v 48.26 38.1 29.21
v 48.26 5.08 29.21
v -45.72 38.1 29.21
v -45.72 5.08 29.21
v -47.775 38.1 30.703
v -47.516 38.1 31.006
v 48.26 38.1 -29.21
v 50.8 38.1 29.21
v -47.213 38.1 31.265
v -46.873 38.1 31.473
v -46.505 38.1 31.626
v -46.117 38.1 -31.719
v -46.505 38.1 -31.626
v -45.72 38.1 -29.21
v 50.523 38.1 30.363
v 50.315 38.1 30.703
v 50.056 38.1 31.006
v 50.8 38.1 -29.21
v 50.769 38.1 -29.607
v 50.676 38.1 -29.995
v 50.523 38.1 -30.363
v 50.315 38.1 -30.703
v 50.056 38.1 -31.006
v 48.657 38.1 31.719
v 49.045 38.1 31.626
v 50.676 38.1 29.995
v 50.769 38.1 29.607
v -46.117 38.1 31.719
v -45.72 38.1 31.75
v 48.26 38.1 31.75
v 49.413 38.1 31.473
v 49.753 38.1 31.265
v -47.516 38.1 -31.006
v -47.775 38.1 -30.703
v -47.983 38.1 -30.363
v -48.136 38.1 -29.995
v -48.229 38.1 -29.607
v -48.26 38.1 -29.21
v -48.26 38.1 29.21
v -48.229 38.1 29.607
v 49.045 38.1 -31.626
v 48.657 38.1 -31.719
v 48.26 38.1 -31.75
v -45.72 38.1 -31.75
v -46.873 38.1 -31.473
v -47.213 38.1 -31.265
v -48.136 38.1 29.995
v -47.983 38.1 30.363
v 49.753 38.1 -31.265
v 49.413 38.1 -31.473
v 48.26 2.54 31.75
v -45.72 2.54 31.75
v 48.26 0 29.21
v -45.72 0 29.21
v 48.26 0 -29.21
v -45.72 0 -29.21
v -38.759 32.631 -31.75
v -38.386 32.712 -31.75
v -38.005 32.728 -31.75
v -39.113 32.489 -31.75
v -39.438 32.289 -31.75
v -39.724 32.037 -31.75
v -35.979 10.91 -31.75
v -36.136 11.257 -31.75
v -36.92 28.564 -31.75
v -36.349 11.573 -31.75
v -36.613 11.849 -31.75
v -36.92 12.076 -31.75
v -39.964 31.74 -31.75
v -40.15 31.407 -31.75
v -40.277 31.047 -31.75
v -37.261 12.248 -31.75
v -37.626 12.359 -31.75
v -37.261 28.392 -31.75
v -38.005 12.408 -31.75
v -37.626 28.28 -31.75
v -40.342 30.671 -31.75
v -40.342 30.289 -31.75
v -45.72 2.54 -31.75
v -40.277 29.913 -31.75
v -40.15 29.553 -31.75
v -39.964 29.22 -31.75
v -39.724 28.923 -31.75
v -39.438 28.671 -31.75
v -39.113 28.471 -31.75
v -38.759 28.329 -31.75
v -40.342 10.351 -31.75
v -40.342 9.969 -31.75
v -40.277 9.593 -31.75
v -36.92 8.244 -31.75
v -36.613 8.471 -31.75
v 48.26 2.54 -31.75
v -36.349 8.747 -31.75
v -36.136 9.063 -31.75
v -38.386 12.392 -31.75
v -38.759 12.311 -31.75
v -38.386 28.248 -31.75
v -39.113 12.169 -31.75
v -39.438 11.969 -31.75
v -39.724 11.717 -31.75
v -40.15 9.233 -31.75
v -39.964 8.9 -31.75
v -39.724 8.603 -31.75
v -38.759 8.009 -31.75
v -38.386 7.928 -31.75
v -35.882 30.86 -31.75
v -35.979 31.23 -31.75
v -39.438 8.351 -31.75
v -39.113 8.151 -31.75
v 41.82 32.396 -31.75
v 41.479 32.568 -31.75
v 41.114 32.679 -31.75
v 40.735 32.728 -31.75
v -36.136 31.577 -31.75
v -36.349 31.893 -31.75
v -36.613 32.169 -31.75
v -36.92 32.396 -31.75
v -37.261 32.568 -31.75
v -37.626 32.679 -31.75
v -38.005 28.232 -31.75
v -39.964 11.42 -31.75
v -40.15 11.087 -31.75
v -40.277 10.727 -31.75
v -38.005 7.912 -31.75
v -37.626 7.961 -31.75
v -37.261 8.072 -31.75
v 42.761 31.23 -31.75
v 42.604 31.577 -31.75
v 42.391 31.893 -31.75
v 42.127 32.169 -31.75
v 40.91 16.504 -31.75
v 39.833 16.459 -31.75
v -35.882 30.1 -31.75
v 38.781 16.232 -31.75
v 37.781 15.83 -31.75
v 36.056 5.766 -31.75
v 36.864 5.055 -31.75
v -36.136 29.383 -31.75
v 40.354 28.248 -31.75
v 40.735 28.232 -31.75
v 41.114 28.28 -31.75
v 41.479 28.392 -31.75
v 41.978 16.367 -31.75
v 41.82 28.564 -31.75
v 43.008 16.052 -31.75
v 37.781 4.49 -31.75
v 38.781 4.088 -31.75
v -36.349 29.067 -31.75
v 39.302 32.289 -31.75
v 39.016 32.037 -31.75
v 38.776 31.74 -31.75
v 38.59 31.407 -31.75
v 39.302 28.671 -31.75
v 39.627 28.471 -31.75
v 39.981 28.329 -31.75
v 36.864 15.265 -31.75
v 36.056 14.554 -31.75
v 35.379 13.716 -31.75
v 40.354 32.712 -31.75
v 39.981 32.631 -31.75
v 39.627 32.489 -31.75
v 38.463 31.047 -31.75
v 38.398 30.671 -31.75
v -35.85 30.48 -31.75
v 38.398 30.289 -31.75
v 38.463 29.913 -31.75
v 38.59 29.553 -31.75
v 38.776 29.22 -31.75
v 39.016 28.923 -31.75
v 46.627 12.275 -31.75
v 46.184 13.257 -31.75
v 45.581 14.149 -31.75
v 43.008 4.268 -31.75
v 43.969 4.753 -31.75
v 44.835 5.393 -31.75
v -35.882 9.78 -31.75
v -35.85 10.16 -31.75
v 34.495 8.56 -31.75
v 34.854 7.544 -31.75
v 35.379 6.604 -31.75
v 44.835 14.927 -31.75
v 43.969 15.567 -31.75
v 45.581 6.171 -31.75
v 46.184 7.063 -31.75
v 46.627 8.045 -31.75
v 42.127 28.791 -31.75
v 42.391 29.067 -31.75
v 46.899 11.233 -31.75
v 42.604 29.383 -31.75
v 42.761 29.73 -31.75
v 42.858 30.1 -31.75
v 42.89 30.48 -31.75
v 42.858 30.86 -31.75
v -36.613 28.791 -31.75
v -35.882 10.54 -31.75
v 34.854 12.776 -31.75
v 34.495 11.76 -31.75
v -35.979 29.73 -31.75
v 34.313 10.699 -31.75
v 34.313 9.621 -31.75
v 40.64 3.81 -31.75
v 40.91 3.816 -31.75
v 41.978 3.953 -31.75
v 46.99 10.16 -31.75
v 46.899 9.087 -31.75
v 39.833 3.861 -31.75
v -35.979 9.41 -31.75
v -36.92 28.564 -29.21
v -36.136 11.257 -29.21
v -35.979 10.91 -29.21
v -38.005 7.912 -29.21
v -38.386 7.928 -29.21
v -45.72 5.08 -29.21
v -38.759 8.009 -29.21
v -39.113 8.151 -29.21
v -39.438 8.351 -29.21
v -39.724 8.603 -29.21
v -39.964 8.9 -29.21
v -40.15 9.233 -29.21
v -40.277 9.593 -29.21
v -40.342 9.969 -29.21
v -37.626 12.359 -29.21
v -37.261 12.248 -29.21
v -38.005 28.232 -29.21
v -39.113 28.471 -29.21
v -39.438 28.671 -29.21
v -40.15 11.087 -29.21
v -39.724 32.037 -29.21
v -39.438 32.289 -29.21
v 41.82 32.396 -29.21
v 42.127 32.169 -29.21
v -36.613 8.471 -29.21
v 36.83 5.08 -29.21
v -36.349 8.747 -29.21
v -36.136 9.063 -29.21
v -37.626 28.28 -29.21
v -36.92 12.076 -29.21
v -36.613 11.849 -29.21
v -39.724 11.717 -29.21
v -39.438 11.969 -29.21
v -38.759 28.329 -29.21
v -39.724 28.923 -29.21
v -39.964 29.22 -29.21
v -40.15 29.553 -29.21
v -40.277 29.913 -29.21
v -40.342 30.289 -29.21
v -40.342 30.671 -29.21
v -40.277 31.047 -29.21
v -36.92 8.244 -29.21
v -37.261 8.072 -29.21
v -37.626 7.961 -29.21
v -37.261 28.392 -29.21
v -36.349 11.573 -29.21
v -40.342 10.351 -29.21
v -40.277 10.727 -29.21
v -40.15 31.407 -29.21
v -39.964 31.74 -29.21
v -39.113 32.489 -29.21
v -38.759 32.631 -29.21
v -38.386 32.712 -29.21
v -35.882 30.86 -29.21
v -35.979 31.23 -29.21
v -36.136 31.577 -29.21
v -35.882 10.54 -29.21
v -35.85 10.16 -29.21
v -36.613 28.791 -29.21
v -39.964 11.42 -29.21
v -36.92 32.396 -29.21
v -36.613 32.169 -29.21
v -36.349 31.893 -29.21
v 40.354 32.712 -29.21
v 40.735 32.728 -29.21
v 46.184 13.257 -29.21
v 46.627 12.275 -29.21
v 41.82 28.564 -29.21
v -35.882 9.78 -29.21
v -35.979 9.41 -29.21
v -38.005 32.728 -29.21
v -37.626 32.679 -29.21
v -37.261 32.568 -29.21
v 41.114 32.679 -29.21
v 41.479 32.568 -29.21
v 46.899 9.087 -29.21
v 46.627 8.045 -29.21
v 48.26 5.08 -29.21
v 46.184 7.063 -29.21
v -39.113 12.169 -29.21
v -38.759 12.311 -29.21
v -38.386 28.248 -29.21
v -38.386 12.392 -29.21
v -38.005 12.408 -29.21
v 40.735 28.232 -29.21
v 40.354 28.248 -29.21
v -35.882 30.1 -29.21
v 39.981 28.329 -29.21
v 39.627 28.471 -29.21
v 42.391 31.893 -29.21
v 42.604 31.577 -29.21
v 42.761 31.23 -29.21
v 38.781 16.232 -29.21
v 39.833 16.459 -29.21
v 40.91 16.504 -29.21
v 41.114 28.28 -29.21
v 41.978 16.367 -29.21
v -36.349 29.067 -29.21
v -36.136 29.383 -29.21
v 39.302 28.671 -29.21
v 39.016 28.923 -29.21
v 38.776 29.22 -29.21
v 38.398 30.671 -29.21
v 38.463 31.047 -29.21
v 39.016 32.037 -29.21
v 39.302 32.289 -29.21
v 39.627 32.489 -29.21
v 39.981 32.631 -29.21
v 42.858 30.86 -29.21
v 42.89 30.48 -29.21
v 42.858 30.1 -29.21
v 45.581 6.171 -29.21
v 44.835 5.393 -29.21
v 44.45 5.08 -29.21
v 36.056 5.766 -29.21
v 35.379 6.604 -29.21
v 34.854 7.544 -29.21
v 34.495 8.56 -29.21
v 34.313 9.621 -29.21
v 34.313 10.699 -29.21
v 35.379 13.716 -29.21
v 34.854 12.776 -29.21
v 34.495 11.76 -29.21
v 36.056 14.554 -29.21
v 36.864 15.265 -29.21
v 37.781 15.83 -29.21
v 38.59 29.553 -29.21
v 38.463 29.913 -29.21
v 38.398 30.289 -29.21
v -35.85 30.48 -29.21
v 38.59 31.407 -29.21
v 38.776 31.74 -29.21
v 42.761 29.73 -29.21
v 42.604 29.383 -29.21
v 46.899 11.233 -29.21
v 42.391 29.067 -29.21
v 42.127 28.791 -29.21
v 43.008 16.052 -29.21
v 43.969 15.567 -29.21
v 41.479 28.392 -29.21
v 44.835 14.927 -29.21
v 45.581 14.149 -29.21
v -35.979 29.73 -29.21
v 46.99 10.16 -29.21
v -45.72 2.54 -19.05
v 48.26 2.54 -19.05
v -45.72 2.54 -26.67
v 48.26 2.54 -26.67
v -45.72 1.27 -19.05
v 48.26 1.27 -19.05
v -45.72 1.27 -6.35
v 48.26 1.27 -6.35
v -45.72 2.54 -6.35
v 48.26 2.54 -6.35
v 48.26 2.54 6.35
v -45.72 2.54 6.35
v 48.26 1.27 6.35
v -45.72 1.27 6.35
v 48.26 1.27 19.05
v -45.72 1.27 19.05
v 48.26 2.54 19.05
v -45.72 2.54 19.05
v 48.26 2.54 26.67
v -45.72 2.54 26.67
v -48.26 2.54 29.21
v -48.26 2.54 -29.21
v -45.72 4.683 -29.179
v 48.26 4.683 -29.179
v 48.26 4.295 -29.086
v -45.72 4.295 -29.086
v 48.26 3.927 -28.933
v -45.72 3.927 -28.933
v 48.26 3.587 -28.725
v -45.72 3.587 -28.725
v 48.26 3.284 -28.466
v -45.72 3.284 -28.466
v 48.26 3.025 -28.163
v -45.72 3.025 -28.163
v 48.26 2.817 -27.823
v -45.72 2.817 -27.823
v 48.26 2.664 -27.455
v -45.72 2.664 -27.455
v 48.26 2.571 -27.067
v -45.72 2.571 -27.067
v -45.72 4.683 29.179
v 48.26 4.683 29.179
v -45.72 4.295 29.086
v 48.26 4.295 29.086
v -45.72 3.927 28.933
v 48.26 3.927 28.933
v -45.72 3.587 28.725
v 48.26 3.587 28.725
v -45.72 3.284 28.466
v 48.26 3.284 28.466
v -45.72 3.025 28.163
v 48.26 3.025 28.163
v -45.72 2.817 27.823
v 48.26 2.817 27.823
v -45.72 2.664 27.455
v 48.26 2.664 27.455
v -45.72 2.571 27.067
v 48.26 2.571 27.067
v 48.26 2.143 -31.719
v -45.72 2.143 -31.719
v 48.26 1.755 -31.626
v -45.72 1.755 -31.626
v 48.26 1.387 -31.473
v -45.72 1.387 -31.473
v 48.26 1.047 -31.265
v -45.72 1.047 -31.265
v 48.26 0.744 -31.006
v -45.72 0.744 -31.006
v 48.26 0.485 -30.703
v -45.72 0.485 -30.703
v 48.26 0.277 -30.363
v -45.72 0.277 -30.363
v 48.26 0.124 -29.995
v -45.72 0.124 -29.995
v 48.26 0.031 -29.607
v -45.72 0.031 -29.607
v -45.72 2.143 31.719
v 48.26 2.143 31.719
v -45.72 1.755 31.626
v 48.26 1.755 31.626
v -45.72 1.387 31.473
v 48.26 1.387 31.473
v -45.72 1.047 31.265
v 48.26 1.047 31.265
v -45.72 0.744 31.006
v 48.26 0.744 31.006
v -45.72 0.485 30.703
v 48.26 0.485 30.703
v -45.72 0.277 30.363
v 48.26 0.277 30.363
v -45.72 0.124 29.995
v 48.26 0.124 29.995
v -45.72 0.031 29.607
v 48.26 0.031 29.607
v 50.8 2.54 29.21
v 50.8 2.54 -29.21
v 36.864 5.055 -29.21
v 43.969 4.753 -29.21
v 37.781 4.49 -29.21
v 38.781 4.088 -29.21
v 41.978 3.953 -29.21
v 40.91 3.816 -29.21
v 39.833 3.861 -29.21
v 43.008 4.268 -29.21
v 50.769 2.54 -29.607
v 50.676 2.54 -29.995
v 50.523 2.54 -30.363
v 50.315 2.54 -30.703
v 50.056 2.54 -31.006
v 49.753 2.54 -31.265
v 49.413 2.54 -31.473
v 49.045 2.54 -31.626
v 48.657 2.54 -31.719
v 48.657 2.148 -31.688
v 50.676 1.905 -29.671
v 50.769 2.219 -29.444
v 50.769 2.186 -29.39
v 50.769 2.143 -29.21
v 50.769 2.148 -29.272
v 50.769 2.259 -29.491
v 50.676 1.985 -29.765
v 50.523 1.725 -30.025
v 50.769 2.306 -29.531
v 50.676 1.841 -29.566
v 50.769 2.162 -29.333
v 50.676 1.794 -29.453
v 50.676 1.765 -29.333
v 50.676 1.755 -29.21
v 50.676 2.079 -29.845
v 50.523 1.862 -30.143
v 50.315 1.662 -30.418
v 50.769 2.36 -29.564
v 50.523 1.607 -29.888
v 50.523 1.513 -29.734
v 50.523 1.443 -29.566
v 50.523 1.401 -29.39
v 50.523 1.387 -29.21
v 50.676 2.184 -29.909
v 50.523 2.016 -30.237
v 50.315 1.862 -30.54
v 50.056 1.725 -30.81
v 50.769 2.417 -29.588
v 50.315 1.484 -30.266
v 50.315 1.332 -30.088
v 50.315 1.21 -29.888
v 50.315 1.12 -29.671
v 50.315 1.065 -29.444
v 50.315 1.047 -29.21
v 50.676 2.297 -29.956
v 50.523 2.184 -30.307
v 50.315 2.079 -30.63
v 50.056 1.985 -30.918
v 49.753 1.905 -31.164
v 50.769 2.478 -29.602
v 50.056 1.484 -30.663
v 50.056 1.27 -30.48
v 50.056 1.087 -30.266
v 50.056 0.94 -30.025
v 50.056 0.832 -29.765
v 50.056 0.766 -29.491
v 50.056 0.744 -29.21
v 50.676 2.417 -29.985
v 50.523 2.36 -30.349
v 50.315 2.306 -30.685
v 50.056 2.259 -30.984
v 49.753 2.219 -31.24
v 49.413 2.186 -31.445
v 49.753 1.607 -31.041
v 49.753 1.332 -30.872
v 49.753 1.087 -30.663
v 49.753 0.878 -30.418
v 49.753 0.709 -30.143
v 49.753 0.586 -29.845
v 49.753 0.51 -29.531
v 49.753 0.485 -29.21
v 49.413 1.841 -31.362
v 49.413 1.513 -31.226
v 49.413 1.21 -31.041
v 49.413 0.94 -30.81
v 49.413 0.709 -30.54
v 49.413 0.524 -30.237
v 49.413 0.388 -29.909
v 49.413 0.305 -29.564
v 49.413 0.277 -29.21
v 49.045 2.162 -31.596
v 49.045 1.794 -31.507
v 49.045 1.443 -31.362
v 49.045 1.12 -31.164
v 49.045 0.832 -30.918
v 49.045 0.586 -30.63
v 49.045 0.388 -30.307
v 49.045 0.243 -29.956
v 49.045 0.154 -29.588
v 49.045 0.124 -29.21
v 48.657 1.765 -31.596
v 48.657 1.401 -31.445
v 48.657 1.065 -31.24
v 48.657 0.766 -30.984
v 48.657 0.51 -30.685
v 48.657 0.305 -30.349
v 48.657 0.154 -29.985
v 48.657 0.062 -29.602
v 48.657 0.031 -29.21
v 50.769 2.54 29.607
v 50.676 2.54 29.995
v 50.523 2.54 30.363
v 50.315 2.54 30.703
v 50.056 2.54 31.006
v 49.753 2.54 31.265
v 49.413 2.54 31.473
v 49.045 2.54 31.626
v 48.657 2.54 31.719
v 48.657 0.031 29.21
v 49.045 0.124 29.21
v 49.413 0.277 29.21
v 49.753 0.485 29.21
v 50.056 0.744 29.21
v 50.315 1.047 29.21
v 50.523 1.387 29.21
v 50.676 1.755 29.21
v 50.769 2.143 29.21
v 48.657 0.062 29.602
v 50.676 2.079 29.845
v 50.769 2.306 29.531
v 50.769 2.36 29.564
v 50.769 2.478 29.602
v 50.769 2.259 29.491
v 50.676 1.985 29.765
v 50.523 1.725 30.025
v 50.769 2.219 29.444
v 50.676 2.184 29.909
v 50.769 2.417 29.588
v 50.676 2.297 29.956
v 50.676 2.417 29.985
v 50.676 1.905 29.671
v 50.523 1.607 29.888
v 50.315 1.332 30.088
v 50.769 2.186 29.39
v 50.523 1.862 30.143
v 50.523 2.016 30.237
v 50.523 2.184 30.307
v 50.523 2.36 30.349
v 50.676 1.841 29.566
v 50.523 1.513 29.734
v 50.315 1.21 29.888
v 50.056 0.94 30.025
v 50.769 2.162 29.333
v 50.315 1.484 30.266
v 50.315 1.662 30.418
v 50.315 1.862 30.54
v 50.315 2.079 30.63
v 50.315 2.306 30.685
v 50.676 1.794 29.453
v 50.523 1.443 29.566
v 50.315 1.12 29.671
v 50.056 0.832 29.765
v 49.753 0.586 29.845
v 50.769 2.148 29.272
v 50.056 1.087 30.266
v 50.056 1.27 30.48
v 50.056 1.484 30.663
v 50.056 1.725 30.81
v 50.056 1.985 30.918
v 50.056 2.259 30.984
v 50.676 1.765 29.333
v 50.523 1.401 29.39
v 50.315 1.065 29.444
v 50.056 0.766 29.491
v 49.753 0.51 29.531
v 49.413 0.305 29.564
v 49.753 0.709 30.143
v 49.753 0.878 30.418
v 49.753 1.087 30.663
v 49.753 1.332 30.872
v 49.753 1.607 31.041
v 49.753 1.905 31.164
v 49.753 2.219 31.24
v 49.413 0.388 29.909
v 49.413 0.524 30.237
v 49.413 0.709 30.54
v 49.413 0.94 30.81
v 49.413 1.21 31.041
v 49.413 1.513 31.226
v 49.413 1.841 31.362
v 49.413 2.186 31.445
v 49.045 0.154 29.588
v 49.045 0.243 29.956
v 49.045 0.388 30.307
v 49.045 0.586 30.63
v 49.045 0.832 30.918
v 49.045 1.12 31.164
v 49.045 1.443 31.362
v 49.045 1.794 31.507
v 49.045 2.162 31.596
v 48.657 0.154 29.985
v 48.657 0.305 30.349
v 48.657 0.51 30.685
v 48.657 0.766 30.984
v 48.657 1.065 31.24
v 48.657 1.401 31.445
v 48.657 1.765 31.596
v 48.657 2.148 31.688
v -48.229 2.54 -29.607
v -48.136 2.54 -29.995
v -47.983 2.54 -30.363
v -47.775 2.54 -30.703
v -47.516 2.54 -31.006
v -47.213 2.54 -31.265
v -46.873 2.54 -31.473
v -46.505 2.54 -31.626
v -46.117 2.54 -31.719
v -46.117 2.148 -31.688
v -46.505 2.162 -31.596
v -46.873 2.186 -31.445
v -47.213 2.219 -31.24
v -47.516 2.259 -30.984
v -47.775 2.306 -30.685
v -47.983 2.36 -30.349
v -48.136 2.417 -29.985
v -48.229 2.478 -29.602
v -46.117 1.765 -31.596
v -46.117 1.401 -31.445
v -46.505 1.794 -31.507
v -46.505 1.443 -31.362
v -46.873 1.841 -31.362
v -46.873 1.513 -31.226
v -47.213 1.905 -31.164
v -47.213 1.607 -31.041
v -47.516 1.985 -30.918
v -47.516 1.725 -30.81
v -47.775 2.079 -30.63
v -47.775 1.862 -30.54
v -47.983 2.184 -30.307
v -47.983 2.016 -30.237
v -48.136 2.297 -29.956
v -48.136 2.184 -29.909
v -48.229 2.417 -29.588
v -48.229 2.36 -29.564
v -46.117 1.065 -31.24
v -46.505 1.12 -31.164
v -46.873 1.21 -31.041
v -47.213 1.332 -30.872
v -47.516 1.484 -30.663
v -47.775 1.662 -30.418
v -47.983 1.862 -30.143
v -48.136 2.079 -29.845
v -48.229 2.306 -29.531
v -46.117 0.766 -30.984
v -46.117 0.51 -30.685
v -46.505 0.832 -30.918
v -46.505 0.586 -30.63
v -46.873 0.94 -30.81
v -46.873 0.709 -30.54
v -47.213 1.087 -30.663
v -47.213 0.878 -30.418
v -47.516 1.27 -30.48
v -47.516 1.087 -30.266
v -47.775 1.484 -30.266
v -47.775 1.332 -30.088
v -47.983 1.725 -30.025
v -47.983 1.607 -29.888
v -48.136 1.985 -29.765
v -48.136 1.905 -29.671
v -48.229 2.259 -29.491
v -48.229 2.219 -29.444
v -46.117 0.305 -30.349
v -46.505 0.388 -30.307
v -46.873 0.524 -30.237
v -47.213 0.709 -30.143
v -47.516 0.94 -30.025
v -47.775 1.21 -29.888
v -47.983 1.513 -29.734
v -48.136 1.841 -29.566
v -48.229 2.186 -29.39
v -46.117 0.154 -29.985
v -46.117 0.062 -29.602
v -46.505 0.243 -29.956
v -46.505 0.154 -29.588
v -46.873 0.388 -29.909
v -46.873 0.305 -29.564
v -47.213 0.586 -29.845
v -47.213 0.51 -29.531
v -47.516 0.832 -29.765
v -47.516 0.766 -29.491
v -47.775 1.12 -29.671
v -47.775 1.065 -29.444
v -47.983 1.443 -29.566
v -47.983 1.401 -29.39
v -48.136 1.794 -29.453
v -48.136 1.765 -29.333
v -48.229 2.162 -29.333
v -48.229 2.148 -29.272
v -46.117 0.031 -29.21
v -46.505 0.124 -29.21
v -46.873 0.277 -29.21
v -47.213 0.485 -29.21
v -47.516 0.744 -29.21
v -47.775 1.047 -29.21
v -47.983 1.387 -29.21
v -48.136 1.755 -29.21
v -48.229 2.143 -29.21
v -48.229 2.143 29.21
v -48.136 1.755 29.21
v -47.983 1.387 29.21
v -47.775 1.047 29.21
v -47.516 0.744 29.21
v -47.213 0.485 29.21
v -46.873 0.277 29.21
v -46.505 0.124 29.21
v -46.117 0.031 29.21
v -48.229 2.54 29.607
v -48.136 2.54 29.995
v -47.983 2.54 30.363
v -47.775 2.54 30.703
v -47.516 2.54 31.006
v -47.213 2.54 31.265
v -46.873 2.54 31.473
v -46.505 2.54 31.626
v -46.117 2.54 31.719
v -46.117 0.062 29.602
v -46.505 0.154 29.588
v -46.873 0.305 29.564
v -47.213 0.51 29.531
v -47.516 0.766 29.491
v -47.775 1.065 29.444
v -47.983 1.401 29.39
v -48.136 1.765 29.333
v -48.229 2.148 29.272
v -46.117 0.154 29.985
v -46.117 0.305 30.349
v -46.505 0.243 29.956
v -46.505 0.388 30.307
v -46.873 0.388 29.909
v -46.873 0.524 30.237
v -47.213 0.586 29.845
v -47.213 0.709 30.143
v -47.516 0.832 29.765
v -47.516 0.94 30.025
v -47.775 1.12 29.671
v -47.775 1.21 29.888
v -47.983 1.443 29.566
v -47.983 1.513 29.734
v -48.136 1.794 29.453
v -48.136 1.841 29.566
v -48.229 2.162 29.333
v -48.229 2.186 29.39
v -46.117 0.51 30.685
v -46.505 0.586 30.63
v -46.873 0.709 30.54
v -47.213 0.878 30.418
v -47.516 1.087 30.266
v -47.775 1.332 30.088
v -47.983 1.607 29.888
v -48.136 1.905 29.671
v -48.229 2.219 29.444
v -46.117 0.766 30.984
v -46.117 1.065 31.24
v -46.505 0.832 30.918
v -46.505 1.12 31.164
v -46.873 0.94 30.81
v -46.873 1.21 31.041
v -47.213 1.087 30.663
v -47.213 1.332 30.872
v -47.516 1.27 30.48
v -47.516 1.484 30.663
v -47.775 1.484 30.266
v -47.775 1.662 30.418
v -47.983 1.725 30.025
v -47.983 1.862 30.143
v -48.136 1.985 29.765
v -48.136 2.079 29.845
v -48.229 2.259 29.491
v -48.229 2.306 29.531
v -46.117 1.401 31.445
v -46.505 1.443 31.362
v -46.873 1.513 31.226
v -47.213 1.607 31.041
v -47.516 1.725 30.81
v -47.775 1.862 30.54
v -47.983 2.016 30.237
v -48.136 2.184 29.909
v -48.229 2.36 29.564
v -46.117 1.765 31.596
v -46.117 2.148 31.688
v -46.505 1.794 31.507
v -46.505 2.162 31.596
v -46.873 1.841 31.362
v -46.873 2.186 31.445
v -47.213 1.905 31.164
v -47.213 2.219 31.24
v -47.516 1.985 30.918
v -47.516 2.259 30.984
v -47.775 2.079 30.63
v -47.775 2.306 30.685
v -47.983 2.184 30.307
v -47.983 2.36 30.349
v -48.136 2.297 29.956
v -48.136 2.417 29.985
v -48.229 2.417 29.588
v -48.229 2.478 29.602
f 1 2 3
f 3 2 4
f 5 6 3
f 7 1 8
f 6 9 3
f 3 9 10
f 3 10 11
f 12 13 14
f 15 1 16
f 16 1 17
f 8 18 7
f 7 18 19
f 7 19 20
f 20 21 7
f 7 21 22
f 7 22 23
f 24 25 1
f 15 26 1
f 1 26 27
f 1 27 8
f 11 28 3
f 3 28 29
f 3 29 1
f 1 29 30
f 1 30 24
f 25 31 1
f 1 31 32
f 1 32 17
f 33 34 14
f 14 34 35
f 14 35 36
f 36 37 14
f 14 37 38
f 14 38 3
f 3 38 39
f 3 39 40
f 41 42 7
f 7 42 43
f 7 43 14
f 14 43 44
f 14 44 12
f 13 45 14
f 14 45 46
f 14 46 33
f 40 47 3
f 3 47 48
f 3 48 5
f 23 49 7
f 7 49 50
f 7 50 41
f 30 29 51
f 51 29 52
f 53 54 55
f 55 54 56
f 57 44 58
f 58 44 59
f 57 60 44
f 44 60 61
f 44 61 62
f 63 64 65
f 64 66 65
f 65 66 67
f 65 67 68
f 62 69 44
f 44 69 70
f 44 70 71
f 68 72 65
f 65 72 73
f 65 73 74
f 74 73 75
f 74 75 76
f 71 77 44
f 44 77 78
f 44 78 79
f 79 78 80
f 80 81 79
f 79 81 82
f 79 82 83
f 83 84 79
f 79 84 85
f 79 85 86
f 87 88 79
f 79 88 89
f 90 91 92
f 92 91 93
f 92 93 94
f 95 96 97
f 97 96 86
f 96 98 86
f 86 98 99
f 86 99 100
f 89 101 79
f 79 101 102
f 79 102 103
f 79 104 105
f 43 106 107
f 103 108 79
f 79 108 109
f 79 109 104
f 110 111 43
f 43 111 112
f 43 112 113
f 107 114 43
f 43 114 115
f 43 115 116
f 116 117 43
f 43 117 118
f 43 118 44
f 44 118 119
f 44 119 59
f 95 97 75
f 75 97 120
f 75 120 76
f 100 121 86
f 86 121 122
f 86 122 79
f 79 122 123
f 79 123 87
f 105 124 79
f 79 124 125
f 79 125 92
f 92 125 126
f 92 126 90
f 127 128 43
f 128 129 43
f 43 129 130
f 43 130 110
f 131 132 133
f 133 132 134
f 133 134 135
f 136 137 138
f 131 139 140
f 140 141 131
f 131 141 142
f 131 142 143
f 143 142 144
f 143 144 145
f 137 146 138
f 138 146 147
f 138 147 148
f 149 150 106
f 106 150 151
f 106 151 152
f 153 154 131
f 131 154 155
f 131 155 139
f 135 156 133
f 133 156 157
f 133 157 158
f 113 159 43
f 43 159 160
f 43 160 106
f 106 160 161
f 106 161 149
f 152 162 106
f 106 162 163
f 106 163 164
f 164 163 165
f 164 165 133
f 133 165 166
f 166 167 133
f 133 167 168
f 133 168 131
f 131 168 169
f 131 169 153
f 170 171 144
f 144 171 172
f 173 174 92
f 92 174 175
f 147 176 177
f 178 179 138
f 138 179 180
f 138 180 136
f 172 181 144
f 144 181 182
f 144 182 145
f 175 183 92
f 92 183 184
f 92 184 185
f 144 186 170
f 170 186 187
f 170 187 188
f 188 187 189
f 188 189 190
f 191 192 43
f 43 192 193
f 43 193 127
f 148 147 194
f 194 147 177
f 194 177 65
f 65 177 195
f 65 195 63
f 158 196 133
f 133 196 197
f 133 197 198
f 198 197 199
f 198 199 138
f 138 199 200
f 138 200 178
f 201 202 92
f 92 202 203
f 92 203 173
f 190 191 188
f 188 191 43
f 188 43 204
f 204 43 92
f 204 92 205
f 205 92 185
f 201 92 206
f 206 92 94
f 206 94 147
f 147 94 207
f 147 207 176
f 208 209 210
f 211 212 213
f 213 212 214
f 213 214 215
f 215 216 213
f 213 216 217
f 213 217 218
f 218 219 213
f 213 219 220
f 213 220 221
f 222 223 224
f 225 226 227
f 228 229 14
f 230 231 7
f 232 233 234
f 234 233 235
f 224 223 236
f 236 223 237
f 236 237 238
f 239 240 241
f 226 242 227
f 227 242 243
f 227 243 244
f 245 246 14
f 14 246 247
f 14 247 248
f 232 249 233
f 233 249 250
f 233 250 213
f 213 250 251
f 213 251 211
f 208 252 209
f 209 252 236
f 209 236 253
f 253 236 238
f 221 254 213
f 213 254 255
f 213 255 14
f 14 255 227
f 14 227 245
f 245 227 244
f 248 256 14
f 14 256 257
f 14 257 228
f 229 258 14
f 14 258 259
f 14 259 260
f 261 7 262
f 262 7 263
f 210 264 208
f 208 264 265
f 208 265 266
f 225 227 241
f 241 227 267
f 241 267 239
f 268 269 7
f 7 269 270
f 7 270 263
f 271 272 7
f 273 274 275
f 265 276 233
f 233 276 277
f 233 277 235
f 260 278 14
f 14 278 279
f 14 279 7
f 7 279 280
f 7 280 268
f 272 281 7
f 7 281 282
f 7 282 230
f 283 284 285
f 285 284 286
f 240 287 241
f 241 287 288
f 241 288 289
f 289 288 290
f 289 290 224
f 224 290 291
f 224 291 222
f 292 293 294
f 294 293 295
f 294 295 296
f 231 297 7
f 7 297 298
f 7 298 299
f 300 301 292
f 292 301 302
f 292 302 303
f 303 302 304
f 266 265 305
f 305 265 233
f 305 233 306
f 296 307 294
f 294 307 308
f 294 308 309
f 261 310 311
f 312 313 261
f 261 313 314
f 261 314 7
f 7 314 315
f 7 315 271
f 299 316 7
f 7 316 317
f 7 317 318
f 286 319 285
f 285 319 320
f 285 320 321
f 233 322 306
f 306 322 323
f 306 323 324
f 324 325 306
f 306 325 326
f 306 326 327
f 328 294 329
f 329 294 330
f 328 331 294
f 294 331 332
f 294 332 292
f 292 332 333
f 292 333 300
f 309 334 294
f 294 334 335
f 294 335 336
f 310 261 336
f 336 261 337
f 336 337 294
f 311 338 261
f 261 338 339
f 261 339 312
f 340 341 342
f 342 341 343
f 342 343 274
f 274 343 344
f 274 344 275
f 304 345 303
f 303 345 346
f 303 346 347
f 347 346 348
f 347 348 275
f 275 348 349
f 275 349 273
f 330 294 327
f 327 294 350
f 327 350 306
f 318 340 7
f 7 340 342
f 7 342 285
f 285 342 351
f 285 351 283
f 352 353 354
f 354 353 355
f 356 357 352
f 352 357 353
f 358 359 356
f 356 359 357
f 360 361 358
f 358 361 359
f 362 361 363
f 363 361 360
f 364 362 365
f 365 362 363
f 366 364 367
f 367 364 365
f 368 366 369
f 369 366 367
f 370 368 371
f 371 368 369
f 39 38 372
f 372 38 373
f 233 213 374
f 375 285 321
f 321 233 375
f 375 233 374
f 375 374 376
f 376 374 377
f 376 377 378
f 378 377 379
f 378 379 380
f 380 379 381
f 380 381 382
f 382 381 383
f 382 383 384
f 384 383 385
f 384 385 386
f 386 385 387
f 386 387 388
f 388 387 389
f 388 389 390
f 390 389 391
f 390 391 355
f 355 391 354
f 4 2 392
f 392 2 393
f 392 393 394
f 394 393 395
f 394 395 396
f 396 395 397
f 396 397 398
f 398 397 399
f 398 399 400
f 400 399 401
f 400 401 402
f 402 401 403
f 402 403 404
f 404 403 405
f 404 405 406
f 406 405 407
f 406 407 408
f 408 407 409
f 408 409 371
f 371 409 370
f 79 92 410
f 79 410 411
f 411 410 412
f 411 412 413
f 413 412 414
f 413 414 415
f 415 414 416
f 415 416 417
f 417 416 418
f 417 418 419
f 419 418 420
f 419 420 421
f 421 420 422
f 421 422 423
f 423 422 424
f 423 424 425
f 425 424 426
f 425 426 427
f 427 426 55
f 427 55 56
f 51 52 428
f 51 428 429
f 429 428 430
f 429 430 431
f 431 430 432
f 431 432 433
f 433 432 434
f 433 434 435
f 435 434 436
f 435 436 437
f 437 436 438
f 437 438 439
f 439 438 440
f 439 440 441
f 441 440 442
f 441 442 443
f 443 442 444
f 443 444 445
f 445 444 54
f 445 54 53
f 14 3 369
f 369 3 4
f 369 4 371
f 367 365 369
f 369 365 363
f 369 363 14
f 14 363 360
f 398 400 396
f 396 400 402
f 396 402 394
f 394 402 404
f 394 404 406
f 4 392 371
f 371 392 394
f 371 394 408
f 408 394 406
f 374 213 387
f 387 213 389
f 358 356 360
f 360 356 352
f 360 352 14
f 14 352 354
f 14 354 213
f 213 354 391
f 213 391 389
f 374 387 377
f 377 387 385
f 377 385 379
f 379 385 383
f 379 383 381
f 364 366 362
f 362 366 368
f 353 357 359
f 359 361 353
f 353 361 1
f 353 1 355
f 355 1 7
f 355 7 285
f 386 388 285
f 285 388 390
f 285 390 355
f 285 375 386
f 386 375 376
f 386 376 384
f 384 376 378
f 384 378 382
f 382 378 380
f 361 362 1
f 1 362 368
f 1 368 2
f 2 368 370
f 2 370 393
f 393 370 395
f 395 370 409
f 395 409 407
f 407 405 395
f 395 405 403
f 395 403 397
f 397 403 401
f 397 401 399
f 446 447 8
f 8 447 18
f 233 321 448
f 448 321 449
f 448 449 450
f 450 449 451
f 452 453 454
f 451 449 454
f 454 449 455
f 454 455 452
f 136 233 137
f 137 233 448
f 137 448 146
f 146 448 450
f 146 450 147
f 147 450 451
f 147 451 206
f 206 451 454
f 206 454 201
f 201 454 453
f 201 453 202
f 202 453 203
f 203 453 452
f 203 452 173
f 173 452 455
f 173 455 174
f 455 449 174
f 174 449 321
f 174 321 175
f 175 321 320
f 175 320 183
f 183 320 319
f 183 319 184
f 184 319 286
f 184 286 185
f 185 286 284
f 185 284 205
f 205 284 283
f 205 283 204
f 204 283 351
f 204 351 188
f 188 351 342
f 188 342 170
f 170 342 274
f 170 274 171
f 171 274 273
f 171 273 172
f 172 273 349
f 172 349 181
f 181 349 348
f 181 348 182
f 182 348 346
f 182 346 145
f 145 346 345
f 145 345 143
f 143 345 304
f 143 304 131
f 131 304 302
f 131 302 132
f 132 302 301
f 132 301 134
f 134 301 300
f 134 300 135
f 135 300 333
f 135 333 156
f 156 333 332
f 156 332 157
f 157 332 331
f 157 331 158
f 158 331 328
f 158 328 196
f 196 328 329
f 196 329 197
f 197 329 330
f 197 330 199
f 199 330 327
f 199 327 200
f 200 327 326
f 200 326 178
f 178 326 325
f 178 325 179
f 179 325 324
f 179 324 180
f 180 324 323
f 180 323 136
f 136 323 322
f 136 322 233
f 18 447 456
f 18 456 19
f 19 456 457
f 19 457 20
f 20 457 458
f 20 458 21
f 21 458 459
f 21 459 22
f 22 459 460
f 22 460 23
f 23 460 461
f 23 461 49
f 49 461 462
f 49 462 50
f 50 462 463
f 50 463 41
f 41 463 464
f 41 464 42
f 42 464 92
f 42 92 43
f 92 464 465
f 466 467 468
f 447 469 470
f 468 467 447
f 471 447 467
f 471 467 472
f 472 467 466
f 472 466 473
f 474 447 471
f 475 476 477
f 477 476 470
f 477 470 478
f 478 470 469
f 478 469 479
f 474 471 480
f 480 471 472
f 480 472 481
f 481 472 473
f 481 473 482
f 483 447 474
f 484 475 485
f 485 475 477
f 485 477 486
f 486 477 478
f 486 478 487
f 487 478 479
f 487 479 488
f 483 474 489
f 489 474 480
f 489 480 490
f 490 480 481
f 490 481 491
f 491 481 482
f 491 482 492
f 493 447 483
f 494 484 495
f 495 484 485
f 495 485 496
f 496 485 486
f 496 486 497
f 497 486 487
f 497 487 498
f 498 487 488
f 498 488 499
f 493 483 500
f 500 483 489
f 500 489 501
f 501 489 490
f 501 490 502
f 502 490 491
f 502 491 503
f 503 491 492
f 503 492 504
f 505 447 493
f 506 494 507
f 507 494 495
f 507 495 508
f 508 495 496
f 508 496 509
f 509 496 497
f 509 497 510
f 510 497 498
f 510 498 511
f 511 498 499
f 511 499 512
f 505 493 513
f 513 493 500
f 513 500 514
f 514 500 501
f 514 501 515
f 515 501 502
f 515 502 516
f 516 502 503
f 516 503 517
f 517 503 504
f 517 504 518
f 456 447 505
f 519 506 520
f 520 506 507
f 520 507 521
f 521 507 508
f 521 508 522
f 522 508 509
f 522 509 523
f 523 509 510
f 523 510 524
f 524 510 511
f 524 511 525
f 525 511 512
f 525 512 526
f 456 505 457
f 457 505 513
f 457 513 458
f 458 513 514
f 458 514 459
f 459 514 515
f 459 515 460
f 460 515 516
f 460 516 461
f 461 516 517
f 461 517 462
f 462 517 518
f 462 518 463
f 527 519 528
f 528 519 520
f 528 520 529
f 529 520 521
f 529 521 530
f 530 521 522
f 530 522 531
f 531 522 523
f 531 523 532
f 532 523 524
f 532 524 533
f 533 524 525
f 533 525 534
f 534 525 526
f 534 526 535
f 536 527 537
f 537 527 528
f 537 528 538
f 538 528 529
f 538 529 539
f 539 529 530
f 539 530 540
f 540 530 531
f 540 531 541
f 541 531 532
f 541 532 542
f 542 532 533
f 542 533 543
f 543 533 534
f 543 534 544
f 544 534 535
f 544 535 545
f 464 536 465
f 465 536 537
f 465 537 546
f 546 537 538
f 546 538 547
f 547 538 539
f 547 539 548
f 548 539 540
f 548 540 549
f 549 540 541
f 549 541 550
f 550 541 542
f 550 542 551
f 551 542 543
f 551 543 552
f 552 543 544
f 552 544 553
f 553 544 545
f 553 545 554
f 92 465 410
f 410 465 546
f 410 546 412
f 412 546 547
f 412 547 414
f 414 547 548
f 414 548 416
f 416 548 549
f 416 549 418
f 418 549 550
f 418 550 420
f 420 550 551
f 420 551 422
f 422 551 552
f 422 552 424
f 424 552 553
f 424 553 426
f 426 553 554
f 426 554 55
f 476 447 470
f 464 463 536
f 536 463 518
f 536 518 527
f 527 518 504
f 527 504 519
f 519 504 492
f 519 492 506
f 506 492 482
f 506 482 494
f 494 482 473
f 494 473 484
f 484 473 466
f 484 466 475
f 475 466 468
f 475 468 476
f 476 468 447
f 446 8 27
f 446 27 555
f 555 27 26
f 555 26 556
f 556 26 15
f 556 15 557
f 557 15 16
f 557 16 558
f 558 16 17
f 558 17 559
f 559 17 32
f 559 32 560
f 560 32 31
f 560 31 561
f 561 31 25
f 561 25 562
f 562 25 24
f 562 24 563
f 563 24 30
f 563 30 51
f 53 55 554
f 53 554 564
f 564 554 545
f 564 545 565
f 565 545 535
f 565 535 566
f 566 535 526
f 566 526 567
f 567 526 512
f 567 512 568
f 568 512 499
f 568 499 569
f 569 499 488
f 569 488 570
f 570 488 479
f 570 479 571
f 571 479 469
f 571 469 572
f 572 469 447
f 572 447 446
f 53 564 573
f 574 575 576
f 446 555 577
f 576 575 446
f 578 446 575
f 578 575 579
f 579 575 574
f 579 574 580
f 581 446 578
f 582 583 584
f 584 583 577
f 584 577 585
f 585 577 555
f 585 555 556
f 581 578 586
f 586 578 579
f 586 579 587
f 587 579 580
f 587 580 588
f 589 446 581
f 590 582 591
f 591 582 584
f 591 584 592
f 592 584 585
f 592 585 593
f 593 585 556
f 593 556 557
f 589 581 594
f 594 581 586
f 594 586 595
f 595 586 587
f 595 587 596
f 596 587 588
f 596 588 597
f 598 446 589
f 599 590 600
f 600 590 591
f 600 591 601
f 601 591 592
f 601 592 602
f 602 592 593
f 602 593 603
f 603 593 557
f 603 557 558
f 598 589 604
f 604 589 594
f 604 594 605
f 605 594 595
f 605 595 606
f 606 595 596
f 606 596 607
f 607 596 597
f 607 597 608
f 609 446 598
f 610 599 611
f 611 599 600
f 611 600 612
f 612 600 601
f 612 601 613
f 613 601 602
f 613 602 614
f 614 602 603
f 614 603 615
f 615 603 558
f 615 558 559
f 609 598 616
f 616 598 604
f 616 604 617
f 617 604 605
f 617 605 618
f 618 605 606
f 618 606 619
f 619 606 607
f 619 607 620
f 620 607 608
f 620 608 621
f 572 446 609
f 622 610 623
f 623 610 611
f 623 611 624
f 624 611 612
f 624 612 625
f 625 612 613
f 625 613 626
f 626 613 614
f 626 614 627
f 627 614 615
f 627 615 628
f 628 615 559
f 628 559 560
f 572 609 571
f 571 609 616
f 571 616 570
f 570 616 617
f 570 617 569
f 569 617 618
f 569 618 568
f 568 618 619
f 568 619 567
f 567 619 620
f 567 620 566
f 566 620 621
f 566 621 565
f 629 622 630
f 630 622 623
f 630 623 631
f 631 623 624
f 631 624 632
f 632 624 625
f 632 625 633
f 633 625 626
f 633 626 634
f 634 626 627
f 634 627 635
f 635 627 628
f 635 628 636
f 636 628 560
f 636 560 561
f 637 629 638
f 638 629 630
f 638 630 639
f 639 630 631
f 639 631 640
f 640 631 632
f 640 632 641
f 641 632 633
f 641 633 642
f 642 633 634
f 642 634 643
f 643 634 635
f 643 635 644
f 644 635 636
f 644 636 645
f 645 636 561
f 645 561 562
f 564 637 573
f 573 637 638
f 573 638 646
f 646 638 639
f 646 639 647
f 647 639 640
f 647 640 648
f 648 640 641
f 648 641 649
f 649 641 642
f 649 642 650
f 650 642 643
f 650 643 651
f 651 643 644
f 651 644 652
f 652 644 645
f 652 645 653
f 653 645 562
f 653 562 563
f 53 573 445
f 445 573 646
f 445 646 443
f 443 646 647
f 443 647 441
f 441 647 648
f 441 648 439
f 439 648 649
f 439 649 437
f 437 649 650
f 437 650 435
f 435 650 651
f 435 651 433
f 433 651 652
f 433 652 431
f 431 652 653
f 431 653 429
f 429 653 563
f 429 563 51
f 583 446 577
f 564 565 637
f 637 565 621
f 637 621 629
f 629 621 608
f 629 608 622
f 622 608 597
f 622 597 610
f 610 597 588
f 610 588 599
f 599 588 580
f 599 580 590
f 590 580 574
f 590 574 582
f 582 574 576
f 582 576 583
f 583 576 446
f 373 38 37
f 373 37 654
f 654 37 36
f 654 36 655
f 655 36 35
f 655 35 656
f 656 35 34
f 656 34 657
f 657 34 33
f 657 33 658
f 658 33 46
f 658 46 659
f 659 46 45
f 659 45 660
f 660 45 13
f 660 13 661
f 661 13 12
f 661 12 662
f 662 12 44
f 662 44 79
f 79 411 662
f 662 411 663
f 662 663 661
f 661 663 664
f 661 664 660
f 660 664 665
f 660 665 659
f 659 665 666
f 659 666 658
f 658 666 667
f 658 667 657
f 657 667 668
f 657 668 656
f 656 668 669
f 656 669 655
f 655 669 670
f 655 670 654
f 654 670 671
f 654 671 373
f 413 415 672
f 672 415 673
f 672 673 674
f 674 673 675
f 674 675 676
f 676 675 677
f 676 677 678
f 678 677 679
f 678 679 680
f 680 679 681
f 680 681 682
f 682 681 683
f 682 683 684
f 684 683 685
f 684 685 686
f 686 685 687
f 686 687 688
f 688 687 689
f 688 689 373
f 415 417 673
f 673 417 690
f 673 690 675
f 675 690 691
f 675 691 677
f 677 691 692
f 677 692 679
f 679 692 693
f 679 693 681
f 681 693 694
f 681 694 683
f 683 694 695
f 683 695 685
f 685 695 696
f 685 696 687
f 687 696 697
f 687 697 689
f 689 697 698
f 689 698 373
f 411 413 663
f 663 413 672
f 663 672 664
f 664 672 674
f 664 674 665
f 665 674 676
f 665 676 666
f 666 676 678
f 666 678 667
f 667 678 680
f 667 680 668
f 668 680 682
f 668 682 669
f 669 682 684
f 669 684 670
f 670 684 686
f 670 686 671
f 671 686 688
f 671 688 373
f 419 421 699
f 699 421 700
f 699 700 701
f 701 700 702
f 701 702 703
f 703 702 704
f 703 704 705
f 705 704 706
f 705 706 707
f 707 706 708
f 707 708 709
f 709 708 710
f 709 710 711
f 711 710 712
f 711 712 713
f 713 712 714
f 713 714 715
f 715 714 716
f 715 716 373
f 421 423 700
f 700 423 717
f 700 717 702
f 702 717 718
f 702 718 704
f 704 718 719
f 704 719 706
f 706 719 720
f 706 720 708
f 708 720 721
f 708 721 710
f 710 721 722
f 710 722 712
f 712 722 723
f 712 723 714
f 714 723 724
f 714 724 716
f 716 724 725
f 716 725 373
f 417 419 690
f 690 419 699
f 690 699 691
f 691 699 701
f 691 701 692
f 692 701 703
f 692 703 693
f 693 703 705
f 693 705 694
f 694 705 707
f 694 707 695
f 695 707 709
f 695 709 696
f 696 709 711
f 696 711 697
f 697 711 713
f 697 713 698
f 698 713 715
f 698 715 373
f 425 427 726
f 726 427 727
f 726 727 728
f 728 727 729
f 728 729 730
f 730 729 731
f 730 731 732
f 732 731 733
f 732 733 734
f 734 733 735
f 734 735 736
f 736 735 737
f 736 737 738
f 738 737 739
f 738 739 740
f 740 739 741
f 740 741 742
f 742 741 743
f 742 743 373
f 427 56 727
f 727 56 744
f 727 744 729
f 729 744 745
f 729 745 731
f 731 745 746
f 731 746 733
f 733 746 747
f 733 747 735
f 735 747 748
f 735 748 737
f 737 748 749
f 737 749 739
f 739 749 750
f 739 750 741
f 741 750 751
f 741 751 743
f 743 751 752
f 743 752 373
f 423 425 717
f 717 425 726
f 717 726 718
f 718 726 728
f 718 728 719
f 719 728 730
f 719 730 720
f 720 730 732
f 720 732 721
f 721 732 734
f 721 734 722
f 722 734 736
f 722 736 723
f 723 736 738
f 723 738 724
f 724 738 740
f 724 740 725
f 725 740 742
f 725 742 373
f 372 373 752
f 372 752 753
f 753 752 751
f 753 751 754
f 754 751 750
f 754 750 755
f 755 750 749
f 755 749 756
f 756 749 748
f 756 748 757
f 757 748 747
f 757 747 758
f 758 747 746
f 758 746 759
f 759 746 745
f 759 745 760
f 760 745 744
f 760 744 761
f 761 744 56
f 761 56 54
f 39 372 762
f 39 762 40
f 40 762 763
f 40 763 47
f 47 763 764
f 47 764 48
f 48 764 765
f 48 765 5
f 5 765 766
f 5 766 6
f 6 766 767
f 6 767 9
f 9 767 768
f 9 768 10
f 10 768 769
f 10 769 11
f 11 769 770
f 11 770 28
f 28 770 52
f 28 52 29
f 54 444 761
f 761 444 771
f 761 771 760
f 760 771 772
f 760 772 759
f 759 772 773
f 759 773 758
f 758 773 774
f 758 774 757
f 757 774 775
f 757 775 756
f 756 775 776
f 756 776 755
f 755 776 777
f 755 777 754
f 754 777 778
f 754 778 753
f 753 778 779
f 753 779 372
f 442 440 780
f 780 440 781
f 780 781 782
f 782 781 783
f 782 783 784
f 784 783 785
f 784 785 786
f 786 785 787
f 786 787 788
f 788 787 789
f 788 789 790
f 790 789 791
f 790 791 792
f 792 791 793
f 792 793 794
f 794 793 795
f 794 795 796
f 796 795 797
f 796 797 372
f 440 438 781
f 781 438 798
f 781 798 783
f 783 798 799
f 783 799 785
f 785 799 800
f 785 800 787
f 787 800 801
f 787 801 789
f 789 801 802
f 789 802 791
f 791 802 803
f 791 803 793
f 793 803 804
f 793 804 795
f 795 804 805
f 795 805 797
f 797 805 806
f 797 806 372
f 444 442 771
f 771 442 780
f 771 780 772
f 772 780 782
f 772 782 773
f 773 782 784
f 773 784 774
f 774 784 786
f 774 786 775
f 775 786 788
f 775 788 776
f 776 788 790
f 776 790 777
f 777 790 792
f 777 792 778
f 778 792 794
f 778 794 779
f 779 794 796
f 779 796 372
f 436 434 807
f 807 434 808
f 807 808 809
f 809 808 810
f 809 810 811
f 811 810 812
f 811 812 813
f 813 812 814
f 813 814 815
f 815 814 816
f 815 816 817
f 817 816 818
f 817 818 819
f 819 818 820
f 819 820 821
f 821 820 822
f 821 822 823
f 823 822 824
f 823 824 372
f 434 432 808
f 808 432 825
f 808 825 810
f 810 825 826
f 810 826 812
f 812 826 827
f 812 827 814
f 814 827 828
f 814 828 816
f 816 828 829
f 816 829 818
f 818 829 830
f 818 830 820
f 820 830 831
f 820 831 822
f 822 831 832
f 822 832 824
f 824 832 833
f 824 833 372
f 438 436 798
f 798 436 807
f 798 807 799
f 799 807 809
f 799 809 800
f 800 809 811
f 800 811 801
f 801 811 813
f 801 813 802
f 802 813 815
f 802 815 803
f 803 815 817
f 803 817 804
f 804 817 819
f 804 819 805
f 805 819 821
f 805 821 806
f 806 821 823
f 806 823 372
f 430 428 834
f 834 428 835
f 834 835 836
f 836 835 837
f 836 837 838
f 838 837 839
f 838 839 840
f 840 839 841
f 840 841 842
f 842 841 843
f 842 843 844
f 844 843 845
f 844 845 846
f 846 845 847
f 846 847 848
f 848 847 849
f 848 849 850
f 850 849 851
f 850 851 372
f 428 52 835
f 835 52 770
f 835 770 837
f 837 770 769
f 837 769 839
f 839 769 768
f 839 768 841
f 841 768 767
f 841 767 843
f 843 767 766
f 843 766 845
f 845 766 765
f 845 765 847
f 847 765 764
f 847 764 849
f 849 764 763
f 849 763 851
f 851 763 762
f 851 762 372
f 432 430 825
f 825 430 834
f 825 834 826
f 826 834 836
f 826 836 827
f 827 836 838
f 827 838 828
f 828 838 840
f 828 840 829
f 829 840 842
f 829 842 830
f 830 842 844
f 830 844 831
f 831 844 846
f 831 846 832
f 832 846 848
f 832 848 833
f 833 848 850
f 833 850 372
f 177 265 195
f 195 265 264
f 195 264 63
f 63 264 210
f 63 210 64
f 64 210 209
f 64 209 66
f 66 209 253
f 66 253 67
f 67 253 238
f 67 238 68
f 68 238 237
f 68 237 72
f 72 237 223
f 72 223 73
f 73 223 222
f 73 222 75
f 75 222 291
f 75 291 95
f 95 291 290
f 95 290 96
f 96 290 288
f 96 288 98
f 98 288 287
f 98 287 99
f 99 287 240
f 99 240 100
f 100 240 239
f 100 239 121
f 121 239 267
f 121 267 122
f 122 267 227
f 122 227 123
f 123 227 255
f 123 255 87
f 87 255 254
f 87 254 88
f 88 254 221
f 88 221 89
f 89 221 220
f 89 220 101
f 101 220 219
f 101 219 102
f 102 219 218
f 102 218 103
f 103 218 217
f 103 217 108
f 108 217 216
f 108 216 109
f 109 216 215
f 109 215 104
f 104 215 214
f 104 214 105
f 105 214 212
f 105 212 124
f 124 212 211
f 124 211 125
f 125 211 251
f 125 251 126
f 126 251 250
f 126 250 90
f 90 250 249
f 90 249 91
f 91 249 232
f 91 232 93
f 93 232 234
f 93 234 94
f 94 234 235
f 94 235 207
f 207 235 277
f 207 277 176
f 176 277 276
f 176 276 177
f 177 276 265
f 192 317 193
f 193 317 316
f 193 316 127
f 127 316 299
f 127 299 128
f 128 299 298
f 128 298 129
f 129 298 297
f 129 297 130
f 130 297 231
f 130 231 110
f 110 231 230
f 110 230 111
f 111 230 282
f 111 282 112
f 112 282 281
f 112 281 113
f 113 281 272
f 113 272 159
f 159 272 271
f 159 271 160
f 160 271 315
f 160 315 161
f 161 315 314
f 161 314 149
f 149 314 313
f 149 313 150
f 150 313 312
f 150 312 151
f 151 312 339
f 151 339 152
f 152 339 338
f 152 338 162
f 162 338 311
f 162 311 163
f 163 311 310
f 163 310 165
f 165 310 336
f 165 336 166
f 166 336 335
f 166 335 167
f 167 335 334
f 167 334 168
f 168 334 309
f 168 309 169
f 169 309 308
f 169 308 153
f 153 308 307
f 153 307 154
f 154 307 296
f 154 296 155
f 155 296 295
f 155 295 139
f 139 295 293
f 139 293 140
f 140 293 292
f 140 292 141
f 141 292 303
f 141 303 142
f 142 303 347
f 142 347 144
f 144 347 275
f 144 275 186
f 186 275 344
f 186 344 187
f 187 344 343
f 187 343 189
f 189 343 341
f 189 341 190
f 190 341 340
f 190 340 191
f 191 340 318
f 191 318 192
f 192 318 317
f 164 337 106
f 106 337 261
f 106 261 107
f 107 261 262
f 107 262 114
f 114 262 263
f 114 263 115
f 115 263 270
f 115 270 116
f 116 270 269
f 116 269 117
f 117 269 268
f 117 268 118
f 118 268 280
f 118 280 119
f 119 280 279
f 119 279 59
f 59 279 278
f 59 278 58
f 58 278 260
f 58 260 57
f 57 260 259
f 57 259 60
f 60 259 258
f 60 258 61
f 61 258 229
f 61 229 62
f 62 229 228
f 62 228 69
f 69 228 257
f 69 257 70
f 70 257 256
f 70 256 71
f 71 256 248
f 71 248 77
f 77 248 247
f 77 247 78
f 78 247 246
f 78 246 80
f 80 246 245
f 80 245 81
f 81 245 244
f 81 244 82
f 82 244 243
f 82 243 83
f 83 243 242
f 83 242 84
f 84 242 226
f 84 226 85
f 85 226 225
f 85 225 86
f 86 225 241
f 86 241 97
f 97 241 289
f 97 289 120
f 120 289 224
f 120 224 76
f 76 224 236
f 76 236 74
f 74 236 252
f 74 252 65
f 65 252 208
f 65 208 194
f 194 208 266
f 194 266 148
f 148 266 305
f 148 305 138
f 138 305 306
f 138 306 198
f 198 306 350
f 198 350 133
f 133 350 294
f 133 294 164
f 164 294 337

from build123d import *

# Parameters (mm, degrees)
BOSS_EXTRUDE1_DEPTH      = 48.26
FILLET1_R                = 2.5399999999999996
BOSS_EXTRUDE2_START      = -48.26
BOSS_EXTRUDE2_DEPTH      = 2.5399999999999996
BOSS_EXTRUDE3_START      = 48.26
BOSS_EXTRUDE3_DEPTH      = 2.5399999999999996
CUT_EXTRUDE2_START       = -29.21
SKETCH4_R                = 6.349999999999995
CUT_EXTRUDE2_DEPTH       = 2.54
FILLET2_R                = 2.5399999999999996
M4_CLEARANCE_HOLE1_D     = 4.5
M4_CLEARANCE_HOLE1_DEPTH = 2.54


with BuildPart() as part:
    # Sketch1 → Boss-Extrude1 (new, symmetric)
    with BuildSketch(Plane(origin=(0, 0, 0), x_dir=(0, 0, -1), z_dir=(1, 0, 0))):
        Polygon((31.75, -7.8e-16), (-31.75, -8.55e-15), (-31.75, 38.099999999999994), (-29.21, 38.099999999999994), (-29.209999999999997, 2.539999999999991), (-19.049999999999997, 2.539999999999991), (-19.049999999999997, 1.2699999999999922), (-6.350000000000001, 1.2699999999999922), (-6.35, 2.5399999999999943), (6.35, 2.539999999999996), (6.350000000000001, 1.2699999999999938), (19.049999999999997, 1.2699999999999971), (19.049999999999997, 2.539999999999996), (29.209999999999997, 2.539999999999998), (29.209999999999994, 38.1), (31.749999999999986, 38.1), align=None)
    extrude(amount=BOSS_EXTRUDE1_DEPTH, both=True)

    # Fillet1
    fillet1_edges = [part.edges().sort_by_distance(p)[0] for p in [
        (0, -8.55e-15, 31.75),
        (0, -7.8e-16, -31.75),
        (0, 2.539999999999998, -29.209999999999997),
        (0, 2.539999999999991, 29.209999999999997),
    ]]
    fillet(fillet1_edges, radius=FILLET1_R)

    # Sketch3 → Boss-Extrude2 (add)
    with BuildSketch(Plane(origin=(0, 0, 0), x_dir=(0, 0, -1), z_dir=(1, 0, 0)).offset(BOSS_EXTRUDE2_START)):
        with BuildLine():
            Line((0, 38.099999999999994), (-31.75, 38.099999999999994))
            Line((-31.75, 38.099999999999994), (-31.75, 2.539999999999992))
            ThreePointArc((-31.75, 2.5399999999999934), (-31.00605122421383, 0.7439487757861607), (-29.209999999999997, -7.55e-15))
            Line((-29.209999999999997, -7.81e-15), (0, -4.23e-15))
            Line((0, 0), (1.56e-15, 38.099999999999994))
        make_face()
        with BuildLine():
            Line((31.75, 38.1), (0, 38.099999999999994))
            Line((1.56e-15, 38.099999999999994), (0, 0))
            Line((0, -4.23e-15), (29.210000000000004, -6.5e-16))
            ThreePointArc((29.210000000000004, -2.22e-15), (31.00605122421384, 0.7439487757861647), (31.750000000000014, 2.540000000000001))
            Line((31.750000000000014, 2.539999999999999), (31.75, 38.1))
        make_face()
    extrude(amount=BOSS_EXTRUDE2_DEPTH)

    # Sketch3<3> → Boss-Extrude3 (add)
    with BuildSketch(Plane(origin=(0, 0, 0), x_dir=(0, 0, -1), z_dir=(1, 0, 0)).offset(BOSS_EXTRUDE3_START)):
        with BuildLine():
            Line((31.75, 38.1), (0, 38.099999999999994))
            Line((1.56e-15, 38.099999999999994), (0, 0))
            Line((0, -4.23e-15), (29.210000000000004, -6.5e-16))
            ThreePointArc((29.210000000000004, -2.22e-15), (31.00605122421384, 0.7439487757861647), (31.750000000000014, 2.540000000000001))
            Line((31.750000000000014, 2.539999999999999), (31.75, 38.1))
        make_face()
        with BuildLine():
            Line((0, 38.099999999999994), (-31.75, 38.099999999999994))
            Line((-31.75, 38.099999999999994), (-31.75, 2.539999999999992))
            ThreePointArc((-31.75, 2.5399999999999934), (-31.00605122421383, 0.7439487757861607), (-29.209999999999997, -7.55e-15))
            Line((-29.209999999999997, -7.81e-15), (0, -4.23e-15))
            Line((0, 0), (1.56e-15, 38.099999999999994))
        make_face()
    extrude(amount=BOSS_EXTRUDE3_DEPTH)

    # Sketch4 → Cut-Extrude2 (cut)
    with BuildSketch(Plane.XY.offset(CUT_EXTRUDE2_START)):
        with Locations(Location((40.63999999999999, 10.159999999999991, 0), (0, 0, 306.869897646))):
            Circle(SKETCH4_R)
    extrude(amount=-CUT_EXTRUDE2_DEPTH, mode=Mode.SUBTRACT)

    # Fillet2
    fillet2_edges = [part.edges().sort_by_distance(p)[0] for p in [
        (50.8, 20.319999999999993, 31.75),
        (50.8, 0.7439487757861605, 31.00605122421383),
        (50.8, -4.78e-15, -3.55e-15),
        (50.8, 0.7439487757861649, -31.00605122421384),
        (50.8, 20.32, -31.750000000000007),
        (-48.26, 20.32, -31.749999999999993),
        (-48.26, -4.67e-15, 0),
        (-48.26, 20.319999999999993, 31.75),
        (-48.26, 0.7439487757861611, 31.00605122421383),
        (-48.26, 0.7439487757861682, -31.00605122421383),
    ]]
    fillet(fillet2_edges, radius=FILLET2_R)

    # M4 Clearance Hole1
    with Locations(Plane.XY.offset(-29.209999999999997)):
        with Locations((-38.1, 30.48), (40.64, 30.48), (-38.1, 10.16)):
            Hole(M4_CLEARANCE_HOLE1_D / 2, depth=M4_CLEARANCE_HOLE1_DEPTH)


solid = part.part
